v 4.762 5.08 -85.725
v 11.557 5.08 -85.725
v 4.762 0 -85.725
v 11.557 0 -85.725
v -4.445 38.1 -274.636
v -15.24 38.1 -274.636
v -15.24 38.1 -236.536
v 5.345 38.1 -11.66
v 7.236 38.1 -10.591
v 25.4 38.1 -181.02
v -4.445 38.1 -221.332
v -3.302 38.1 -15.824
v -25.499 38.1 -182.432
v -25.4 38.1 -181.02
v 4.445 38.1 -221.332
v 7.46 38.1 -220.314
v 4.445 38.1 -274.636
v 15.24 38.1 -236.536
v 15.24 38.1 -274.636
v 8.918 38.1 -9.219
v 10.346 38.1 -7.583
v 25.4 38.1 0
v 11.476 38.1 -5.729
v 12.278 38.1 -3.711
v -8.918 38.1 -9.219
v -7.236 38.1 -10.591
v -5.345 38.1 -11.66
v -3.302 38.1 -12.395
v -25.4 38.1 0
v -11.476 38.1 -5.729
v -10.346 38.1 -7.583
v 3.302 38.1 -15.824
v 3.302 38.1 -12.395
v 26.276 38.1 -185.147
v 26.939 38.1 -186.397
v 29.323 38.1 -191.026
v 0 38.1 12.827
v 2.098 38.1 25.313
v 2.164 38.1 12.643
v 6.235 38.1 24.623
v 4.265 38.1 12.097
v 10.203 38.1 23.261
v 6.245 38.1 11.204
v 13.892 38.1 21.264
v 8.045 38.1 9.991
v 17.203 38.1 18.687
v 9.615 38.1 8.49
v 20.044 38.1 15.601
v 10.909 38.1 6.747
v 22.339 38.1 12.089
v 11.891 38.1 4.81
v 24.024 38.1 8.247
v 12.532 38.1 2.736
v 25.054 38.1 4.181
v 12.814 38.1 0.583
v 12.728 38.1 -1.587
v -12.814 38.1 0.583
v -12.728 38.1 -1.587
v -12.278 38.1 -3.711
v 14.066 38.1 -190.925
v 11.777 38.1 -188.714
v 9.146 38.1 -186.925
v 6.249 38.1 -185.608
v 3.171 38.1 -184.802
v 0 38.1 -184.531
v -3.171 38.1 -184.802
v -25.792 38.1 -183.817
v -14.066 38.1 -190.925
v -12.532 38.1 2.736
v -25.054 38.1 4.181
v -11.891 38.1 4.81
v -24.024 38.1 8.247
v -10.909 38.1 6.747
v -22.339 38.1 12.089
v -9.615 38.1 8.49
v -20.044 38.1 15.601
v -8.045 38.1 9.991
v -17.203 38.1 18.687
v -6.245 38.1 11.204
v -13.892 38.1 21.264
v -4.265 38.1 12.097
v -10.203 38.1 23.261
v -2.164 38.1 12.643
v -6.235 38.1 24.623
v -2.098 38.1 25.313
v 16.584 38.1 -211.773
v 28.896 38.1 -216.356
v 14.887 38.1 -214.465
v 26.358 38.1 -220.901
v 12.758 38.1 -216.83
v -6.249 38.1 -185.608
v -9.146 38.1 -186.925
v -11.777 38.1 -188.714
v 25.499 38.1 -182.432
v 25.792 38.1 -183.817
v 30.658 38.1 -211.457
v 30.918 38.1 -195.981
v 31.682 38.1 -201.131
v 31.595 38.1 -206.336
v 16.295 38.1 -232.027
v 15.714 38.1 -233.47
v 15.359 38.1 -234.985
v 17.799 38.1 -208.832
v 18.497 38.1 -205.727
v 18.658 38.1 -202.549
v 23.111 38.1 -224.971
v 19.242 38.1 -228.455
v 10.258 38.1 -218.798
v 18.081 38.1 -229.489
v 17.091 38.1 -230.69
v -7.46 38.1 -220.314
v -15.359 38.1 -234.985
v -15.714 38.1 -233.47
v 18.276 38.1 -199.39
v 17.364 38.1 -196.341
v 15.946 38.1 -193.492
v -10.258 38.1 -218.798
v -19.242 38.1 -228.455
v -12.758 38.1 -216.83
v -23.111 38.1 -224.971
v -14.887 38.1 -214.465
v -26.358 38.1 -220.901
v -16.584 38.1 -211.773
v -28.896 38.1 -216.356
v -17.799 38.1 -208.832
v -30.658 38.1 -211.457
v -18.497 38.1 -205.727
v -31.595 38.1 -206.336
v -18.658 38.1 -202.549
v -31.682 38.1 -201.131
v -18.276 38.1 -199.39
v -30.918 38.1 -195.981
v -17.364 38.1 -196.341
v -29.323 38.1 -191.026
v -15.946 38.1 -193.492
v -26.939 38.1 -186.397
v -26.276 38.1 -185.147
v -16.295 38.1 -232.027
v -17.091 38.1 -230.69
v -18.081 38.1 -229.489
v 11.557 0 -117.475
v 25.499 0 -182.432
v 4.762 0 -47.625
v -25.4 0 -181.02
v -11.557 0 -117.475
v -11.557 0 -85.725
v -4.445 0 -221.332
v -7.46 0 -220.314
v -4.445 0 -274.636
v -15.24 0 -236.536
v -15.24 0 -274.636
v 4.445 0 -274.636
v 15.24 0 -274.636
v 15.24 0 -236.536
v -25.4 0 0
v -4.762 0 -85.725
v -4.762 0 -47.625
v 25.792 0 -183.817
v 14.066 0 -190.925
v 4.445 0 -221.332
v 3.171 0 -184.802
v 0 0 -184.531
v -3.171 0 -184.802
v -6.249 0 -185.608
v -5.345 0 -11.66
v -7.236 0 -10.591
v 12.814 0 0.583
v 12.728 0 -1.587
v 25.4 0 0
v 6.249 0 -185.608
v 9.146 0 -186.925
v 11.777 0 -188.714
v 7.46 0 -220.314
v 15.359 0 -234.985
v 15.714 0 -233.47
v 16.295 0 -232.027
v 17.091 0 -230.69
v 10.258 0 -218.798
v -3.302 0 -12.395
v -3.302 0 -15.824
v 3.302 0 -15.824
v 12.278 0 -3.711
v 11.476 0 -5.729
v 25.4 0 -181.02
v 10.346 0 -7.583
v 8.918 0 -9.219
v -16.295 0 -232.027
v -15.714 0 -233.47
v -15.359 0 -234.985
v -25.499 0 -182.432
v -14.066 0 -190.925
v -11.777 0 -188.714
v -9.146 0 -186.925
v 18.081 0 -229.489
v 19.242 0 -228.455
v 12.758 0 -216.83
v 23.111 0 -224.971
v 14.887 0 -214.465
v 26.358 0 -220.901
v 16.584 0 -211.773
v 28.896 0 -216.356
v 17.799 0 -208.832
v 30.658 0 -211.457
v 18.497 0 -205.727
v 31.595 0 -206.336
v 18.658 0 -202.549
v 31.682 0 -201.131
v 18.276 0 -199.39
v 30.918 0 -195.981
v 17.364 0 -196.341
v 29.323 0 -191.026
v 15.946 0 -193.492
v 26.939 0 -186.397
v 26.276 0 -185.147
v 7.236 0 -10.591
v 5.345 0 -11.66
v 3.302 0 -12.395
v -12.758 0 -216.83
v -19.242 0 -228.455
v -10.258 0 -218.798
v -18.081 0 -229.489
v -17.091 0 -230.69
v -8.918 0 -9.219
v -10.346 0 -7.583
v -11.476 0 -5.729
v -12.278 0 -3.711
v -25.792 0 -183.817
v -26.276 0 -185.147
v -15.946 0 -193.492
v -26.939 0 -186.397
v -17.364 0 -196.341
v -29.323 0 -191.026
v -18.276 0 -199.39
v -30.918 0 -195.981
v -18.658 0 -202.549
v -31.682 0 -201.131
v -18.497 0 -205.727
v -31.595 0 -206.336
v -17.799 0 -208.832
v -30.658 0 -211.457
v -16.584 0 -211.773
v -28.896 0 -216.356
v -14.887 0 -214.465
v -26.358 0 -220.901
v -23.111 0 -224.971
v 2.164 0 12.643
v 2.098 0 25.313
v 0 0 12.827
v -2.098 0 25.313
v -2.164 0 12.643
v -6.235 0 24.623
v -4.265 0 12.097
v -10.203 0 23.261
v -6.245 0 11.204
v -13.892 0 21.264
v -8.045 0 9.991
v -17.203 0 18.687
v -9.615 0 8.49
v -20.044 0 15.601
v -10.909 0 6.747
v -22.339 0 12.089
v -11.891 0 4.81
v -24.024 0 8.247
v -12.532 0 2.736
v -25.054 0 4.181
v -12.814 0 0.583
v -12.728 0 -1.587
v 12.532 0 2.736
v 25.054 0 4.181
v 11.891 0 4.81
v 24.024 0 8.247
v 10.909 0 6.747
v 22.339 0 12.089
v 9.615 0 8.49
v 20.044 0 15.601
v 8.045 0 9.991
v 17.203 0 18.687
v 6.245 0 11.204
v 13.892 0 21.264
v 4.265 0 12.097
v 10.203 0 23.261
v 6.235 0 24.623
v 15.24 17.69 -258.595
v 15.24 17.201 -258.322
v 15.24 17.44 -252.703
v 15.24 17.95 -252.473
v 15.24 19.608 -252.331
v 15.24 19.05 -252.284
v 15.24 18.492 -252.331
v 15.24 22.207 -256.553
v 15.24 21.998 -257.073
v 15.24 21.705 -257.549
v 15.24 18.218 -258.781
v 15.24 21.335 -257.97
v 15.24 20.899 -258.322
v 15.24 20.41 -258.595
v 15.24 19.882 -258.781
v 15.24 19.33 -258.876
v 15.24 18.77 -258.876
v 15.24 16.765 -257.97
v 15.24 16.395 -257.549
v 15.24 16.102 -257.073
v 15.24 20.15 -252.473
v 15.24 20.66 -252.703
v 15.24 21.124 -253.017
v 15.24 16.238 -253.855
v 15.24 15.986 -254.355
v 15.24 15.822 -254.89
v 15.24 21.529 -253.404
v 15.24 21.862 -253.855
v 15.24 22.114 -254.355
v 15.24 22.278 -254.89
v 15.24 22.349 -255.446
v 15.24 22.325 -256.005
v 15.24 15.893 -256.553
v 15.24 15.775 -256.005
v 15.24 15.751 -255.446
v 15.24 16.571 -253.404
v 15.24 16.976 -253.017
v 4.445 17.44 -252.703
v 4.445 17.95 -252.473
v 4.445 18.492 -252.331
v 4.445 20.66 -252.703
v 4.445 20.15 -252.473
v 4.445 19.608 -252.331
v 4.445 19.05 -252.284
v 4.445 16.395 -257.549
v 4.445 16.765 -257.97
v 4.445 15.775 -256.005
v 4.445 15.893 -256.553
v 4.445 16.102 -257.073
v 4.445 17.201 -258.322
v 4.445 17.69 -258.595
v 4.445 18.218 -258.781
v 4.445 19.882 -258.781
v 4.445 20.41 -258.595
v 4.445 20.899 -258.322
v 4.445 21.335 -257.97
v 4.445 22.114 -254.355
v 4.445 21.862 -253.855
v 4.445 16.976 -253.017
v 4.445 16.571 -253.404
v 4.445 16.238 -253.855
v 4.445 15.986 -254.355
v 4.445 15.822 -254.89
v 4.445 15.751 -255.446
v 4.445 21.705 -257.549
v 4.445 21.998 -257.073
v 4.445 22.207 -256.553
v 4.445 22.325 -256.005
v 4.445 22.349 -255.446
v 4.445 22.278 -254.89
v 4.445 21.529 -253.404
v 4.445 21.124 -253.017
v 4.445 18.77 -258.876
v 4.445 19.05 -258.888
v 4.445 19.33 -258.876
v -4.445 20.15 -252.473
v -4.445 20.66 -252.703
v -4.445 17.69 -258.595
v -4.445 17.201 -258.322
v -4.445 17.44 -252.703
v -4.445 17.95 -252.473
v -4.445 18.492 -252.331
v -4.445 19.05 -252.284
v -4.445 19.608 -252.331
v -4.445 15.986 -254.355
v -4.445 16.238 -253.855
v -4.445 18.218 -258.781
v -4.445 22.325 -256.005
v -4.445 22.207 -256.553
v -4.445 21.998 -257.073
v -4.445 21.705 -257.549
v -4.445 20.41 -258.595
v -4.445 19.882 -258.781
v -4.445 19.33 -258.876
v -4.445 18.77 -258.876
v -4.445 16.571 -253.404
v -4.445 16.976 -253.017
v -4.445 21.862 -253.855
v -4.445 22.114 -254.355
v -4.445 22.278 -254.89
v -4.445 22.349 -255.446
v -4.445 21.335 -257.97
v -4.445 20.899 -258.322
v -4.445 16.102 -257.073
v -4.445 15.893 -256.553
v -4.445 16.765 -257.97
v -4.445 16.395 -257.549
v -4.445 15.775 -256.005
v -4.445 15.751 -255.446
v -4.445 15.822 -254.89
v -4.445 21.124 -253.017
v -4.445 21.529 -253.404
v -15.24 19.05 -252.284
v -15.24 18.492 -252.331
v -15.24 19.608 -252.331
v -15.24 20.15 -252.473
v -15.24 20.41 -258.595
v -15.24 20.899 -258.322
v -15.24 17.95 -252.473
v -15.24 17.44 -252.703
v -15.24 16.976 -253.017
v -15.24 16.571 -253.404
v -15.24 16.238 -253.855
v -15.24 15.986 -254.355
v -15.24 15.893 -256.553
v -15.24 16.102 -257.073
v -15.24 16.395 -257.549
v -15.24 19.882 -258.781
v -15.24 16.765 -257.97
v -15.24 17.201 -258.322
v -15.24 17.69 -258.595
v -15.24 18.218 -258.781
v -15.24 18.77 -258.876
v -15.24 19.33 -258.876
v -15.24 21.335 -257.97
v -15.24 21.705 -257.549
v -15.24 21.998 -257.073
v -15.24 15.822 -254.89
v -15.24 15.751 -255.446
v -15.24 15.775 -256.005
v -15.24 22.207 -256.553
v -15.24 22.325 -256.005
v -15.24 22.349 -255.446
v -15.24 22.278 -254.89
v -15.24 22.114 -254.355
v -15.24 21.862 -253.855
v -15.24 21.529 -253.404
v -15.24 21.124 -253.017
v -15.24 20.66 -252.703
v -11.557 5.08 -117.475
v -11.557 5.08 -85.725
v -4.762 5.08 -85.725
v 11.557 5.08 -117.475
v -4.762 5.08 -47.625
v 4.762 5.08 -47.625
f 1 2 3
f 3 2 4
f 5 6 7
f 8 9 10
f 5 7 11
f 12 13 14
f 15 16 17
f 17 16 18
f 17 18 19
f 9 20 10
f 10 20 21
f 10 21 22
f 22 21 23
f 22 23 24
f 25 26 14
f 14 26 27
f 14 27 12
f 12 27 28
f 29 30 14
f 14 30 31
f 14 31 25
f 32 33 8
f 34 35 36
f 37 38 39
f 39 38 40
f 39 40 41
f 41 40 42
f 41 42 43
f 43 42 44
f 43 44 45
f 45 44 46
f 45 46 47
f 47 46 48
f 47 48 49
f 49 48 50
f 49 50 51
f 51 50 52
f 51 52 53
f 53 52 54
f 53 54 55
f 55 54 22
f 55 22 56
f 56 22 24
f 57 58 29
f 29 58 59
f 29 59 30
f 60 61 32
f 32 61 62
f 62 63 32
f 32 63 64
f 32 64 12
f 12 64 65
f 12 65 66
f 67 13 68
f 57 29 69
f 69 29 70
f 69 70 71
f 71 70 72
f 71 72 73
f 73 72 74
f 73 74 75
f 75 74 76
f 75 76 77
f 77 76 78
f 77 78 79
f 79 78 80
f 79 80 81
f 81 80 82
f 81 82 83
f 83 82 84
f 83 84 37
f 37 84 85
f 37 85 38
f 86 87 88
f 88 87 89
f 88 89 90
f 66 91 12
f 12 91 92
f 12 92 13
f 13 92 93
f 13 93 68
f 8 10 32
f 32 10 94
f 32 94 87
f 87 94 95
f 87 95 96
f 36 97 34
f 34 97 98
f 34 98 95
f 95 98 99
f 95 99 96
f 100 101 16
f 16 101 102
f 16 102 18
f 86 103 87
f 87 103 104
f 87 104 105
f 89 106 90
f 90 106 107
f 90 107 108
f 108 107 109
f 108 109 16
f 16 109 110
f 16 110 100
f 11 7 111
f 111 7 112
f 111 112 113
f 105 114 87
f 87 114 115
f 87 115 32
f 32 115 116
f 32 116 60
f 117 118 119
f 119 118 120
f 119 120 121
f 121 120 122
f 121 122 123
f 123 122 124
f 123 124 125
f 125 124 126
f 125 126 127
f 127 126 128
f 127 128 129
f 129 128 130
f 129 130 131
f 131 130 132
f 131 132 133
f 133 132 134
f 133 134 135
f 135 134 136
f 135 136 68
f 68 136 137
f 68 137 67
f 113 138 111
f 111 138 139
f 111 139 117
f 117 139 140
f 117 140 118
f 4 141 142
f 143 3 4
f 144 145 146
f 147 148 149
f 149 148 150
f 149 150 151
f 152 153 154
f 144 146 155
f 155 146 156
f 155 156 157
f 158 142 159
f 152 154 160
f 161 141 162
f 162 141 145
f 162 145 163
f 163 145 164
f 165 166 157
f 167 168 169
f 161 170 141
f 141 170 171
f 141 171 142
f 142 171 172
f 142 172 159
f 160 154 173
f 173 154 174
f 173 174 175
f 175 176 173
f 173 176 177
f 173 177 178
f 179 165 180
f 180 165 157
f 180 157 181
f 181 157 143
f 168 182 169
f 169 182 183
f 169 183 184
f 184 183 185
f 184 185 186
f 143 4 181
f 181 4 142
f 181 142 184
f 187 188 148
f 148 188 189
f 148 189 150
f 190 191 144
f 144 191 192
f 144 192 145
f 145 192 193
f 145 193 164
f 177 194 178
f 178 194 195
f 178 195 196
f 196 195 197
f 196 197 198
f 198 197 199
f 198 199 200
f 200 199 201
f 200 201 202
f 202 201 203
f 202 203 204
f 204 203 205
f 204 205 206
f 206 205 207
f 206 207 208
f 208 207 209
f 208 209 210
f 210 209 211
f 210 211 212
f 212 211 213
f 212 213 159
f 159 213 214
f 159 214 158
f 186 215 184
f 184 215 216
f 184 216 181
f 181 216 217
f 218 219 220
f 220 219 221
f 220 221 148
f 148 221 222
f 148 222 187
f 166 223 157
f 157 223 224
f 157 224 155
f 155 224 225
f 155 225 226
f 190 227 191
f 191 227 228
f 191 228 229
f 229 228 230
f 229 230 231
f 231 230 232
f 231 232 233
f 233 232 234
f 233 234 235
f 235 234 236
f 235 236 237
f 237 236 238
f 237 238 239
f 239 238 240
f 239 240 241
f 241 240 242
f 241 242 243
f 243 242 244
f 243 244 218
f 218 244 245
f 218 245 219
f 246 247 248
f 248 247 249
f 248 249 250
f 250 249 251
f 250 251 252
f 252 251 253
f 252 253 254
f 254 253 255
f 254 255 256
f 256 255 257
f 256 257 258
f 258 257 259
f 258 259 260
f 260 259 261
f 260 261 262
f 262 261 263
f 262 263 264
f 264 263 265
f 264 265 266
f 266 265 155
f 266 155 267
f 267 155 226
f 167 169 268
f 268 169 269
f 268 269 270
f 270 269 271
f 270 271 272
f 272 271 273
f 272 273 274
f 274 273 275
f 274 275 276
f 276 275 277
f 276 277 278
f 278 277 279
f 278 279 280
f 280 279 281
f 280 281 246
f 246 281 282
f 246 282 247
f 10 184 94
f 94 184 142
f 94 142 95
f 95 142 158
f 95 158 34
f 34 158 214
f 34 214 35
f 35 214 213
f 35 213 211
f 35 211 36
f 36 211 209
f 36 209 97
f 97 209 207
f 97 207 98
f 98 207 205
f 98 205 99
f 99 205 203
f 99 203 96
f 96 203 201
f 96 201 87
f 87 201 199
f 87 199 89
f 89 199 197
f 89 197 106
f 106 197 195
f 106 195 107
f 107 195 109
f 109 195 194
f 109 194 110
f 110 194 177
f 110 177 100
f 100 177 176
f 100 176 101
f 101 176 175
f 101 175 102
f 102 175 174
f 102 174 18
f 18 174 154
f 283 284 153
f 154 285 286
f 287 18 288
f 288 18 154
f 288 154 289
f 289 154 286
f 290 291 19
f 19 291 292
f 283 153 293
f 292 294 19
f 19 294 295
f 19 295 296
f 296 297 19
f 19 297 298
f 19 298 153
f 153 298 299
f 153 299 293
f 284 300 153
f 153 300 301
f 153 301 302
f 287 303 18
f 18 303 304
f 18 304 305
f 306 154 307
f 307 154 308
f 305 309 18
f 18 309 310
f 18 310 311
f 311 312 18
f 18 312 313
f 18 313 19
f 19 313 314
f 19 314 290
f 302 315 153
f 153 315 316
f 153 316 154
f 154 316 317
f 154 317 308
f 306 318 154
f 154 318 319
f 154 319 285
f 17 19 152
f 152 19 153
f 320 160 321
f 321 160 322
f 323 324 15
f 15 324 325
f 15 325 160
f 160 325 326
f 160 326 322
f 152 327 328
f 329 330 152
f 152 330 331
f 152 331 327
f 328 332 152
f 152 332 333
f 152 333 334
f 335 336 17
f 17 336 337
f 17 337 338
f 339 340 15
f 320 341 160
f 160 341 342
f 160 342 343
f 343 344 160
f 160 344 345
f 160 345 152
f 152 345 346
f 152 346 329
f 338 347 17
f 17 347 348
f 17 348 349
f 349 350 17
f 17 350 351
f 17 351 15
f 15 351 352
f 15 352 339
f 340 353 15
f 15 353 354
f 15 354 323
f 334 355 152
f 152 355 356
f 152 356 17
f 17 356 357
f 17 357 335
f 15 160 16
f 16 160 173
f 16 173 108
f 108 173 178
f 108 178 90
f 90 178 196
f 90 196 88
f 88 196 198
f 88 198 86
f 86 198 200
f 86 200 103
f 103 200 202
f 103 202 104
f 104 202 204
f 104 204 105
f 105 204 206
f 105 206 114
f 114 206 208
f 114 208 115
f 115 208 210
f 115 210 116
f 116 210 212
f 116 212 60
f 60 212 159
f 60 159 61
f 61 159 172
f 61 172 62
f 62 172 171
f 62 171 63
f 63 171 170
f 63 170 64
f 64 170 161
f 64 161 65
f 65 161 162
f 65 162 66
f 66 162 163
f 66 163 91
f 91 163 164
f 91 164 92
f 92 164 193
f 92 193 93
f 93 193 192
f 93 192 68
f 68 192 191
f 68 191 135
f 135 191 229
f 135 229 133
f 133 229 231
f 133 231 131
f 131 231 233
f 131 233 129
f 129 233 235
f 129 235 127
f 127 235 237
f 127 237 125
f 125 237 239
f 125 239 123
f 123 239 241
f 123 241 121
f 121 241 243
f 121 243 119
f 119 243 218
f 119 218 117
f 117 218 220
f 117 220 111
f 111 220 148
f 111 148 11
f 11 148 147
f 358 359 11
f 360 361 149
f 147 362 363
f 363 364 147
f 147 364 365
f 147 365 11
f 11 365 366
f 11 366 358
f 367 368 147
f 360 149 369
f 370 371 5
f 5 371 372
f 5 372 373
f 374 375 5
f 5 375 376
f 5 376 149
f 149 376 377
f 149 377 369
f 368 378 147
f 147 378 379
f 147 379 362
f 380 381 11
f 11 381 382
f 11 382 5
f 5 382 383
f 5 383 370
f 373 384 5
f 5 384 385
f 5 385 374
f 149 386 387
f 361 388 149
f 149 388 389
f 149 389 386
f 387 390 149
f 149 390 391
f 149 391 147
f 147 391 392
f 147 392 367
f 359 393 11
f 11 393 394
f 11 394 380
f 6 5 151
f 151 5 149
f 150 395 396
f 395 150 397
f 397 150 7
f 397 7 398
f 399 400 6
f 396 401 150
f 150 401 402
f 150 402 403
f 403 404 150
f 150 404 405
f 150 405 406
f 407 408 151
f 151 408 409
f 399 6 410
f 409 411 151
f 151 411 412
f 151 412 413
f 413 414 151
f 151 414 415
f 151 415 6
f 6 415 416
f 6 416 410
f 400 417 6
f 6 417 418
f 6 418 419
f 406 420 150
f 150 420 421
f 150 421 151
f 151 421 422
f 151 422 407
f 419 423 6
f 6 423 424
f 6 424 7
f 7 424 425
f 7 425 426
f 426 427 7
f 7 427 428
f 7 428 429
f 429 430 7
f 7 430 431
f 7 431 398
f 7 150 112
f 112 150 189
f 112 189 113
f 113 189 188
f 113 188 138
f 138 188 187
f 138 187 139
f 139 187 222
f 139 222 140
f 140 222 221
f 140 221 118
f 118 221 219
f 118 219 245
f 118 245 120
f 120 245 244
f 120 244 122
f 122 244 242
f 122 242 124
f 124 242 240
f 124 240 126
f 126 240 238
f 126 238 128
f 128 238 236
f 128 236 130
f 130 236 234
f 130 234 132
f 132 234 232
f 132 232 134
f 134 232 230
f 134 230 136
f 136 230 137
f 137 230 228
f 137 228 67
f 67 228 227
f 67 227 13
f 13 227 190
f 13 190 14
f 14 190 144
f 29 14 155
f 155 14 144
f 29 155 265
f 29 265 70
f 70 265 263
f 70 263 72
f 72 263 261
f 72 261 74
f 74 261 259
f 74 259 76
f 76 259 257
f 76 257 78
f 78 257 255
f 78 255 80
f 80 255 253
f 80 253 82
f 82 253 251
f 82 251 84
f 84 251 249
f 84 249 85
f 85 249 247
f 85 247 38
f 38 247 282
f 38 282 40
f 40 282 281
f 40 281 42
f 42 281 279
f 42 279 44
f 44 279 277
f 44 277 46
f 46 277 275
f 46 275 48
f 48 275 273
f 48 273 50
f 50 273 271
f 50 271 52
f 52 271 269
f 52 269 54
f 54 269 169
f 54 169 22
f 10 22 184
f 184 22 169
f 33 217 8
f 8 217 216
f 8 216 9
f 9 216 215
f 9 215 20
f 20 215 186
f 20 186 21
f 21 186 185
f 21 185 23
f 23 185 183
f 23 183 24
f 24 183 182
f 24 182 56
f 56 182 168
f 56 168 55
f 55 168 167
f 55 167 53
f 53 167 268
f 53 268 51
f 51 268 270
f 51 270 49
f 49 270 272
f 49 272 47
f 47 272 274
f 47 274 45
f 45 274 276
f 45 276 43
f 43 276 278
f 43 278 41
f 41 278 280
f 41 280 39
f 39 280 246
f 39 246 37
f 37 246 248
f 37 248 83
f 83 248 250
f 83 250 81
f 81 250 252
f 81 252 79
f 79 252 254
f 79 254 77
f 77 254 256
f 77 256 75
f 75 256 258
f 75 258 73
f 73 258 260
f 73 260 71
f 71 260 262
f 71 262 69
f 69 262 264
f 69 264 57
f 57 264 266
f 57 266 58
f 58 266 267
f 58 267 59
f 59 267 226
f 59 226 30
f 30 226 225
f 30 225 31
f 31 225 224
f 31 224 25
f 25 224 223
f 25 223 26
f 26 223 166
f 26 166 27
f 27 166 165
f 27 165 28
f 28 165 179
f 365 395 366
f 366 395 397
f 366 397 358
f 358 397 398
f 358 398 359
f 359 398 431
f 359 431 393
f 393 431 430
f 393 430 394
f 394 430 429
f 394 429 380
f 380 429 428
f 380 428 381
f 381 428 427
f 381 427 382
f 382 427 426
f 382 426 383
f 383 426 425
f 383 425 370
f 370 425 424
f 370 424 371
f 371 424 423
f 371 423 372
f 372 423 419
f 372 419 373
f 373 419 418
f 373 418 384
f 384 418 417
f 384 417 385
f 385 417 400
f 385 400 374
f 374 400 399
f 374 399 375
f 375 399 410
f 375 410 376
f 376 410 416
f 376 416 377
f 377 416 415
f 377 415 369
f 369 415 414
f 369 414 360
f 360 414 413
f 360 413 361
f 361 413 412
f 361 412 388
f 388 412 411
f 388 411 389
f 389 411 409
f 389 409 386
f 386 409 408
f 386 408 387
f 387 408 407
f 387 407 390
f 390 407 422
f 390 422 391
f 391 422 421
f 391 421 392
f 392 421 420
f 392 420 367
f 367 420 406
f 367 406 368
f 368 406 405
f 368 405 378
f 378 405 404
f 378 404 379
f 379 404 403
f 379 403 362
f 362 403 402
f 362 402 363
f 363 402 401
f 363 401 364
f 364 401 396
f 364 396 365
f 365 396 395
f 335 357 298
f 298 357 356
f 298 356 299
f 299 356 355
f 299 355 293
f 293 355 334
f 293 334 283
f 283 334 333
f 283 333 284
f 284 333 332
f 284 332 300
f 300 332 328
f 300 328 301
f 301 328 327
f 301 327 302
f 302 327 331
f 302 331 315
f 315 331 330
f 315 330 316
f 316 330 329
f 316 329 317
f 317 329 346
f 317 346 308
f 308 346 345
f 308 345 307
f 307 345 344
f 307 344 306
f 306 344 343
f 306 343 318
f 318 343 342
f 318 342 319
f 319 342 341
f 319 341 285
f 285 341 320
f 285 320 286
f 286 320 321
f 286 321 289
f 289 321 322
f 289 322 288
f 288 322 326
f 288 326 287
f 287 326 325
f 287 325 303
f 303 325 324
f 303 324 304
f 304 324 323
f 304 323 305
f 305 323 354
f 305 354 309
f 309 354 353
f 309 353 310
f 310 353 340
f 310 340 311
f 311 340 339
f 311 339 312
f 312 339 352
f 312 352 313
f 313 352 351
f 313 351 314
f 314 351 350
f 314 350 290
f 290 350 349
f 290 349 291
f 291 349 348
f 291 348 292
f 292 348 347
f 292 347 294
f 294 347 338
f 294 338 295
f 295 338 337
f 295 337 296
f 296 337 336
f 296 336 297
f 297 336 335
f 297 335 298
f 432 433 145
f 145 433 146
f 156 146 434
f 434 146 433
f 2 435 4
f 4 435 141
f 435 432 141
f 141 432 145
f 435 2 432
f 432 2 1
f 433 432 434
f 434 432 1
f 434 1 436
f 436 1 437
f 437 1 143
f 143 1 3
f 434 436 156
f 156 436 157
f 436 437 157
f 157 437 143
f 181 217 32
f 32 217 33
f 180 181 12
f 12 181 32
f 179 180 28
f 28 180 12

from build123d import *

# Parameters (mm, degrees)
SKETCH2_R           = 12.827
BOSS_EXTRUDE1_DEPTH = 38.1
CUT_EXTRUDE1_REACH  = 283.22
SKETCH3_R           = 3.302
SKETCH4_W           = 23.114
SKETCH4_H           = 31.75
CUT_EXTRUDE2_DEPTH  = 5.08
SKETCH5_W           = 9.525
SKETCH5_H           = 38.1
CUT_EXTRUDE3_DEPTH  = 5.08
CUT_EXTRUDE4_REACH  = 281.078
SKETCH6_W           = 6.604
SKETCH6_H           = 3.429


with BuildPart() as part:
    # Sketch2 → Boss-Extrude1 (new body)
    with BuildSketch(Plane(origin=(0, 0, 0), x_dir=(1, 0, 0), z_dir=(0, 1, 0))):
        with BuildLine():
            Line((-25.4, 0), (-25.4, 181.02040352))
            ThreePointArc((-25.4, 181.02040352), (-25.79242718, 183.816851484), (-26.939393939, 186.397275394))
            ThreePointArc((-26.939393939, 186.397275394), (-31.231288537, 208.915690363), (-19.242424242, 228.45453641))
            ThreePointArc((-19.242424242, 228.45453641), (-16.295425059, 232.026851209), (-15.24, 236.535988061))
            Line((-15.24, 236.535988061), (-15.24, 274.635988061))
            Line((-15.24, 274.635988061), (-4.445, 274.635988061))
            Line((-4.445, 274.635988061), (-4.445, 221.33211339))
            ThreePointArc((-4.445, 221.33211339), (0, 184.531), (4.445, 221.33211339))
            Line((4.445, 221.33211339), (4.445, 274.635988061))
            Line((4.445, 274.635988061), (15.24, 274.635988061))
            Line((15.24, 274.635988061), (15.24, 236.535988061))
            ThreePointArc((15.24, 236.535988061), (16.295425059, 232.026851209), (19.242424242, 228.45453641))
            ThreePointArc((19.242424242, 228.45453641), (31.231288537, 208.915690363), (26.939393939, 186.397275394))
            ThreePointArc((26.939393939, 186.397275394), (25.79242718, 183.816851484), (25.4, 181.02040352))
            Line((25.4, 181.02040352), (25.4, 0))
            ThreePointArc((25.4, 0), (0, -25.4), (-25.4, 0))
        make_face()
        with Locations(Location((0, 0, 0), (0, 0, 90))):
            Circle(SKETCH2_R, mode=Mode.SUBTRACT)
    extrude(amount=BOSS_EXTRUDE1_DEPTH)

    # Cut-Extrude1: up to this face of the body (flat: up to its plane)
    cut_extrude1_end = Plane(part.part.faces().sort_by_distance((15.24, 19.05, -255.585988061))[0])
    # Sketch3 → Cut-Extrude1 (cut, up to the picked face)
    with BuildSketch(Plane.ZY.offset(15.24), mode=Mode.PRIVATE) as cut_extrude1_sk1:
        with Locations((-255.585988061, 19.05)):
            Circle(SKETCH3_R)
    cut_extrude1_tool1 = split(extrude(cut_extrude1_sk1.sketch, amount=-CUT_EXTRUDE1_REACH, mode=Mode.PRIVATE), bisect_by=cut_extrude1_end, keep=Keep.BOTH, mode=Mode.PRIVATE)
    add(cut_extrude1_tool1.solids().sort_by(Axis((-15.24, 19.05, -255.585988), (1, 0, 0)))[0], mode=Mode.SUBTRACT)

    # Sketch4 → Cut-Extrude2 (cut)
    with BuildSketch(Plane.XZ):
        with Locations((0, -101.6)):
            Rectangle(SKETCH4_W, SKETCH4_H)
    extrude(amount=-CUT_EXTRUDE2_DEPTH, mode=Mode.SUBTRACT)

    # Sketch5 → Cut-Extrude3 (cut)
    with BuildSketch(Plane.XZ):
        with Locations((0, -66.675)):
            Rectangle(SKETCH5_W, SKETCH5_H)
    extrude(amount=-CUT_EXTRUDE3_DEPTH, mode=Mode.SUBTRACT)

    # Sketch6 → Cut-Extrude4 (cut, up to next)
    with BuildSketch(Plane.XZ, mode=Mode.PRIVATE) as cut_extrude4_sk1:
        with Locations((0, -14.109205523)):
            Rectangle(SKETCH6_W, SKETCH6_H)
    cut_extrude4_tool1 = extrude(cut_extrude4_sk1.sketch, amount=-CUT_EXTRUDE4_REACH, mode=Mode.PRIVATE) & part.part
    add(cut_extrude4_tool1.solids().sort_by_distance((0, 0, -14.109206))[0], mode=Mode.SUBTRACT)


solid = part.part
